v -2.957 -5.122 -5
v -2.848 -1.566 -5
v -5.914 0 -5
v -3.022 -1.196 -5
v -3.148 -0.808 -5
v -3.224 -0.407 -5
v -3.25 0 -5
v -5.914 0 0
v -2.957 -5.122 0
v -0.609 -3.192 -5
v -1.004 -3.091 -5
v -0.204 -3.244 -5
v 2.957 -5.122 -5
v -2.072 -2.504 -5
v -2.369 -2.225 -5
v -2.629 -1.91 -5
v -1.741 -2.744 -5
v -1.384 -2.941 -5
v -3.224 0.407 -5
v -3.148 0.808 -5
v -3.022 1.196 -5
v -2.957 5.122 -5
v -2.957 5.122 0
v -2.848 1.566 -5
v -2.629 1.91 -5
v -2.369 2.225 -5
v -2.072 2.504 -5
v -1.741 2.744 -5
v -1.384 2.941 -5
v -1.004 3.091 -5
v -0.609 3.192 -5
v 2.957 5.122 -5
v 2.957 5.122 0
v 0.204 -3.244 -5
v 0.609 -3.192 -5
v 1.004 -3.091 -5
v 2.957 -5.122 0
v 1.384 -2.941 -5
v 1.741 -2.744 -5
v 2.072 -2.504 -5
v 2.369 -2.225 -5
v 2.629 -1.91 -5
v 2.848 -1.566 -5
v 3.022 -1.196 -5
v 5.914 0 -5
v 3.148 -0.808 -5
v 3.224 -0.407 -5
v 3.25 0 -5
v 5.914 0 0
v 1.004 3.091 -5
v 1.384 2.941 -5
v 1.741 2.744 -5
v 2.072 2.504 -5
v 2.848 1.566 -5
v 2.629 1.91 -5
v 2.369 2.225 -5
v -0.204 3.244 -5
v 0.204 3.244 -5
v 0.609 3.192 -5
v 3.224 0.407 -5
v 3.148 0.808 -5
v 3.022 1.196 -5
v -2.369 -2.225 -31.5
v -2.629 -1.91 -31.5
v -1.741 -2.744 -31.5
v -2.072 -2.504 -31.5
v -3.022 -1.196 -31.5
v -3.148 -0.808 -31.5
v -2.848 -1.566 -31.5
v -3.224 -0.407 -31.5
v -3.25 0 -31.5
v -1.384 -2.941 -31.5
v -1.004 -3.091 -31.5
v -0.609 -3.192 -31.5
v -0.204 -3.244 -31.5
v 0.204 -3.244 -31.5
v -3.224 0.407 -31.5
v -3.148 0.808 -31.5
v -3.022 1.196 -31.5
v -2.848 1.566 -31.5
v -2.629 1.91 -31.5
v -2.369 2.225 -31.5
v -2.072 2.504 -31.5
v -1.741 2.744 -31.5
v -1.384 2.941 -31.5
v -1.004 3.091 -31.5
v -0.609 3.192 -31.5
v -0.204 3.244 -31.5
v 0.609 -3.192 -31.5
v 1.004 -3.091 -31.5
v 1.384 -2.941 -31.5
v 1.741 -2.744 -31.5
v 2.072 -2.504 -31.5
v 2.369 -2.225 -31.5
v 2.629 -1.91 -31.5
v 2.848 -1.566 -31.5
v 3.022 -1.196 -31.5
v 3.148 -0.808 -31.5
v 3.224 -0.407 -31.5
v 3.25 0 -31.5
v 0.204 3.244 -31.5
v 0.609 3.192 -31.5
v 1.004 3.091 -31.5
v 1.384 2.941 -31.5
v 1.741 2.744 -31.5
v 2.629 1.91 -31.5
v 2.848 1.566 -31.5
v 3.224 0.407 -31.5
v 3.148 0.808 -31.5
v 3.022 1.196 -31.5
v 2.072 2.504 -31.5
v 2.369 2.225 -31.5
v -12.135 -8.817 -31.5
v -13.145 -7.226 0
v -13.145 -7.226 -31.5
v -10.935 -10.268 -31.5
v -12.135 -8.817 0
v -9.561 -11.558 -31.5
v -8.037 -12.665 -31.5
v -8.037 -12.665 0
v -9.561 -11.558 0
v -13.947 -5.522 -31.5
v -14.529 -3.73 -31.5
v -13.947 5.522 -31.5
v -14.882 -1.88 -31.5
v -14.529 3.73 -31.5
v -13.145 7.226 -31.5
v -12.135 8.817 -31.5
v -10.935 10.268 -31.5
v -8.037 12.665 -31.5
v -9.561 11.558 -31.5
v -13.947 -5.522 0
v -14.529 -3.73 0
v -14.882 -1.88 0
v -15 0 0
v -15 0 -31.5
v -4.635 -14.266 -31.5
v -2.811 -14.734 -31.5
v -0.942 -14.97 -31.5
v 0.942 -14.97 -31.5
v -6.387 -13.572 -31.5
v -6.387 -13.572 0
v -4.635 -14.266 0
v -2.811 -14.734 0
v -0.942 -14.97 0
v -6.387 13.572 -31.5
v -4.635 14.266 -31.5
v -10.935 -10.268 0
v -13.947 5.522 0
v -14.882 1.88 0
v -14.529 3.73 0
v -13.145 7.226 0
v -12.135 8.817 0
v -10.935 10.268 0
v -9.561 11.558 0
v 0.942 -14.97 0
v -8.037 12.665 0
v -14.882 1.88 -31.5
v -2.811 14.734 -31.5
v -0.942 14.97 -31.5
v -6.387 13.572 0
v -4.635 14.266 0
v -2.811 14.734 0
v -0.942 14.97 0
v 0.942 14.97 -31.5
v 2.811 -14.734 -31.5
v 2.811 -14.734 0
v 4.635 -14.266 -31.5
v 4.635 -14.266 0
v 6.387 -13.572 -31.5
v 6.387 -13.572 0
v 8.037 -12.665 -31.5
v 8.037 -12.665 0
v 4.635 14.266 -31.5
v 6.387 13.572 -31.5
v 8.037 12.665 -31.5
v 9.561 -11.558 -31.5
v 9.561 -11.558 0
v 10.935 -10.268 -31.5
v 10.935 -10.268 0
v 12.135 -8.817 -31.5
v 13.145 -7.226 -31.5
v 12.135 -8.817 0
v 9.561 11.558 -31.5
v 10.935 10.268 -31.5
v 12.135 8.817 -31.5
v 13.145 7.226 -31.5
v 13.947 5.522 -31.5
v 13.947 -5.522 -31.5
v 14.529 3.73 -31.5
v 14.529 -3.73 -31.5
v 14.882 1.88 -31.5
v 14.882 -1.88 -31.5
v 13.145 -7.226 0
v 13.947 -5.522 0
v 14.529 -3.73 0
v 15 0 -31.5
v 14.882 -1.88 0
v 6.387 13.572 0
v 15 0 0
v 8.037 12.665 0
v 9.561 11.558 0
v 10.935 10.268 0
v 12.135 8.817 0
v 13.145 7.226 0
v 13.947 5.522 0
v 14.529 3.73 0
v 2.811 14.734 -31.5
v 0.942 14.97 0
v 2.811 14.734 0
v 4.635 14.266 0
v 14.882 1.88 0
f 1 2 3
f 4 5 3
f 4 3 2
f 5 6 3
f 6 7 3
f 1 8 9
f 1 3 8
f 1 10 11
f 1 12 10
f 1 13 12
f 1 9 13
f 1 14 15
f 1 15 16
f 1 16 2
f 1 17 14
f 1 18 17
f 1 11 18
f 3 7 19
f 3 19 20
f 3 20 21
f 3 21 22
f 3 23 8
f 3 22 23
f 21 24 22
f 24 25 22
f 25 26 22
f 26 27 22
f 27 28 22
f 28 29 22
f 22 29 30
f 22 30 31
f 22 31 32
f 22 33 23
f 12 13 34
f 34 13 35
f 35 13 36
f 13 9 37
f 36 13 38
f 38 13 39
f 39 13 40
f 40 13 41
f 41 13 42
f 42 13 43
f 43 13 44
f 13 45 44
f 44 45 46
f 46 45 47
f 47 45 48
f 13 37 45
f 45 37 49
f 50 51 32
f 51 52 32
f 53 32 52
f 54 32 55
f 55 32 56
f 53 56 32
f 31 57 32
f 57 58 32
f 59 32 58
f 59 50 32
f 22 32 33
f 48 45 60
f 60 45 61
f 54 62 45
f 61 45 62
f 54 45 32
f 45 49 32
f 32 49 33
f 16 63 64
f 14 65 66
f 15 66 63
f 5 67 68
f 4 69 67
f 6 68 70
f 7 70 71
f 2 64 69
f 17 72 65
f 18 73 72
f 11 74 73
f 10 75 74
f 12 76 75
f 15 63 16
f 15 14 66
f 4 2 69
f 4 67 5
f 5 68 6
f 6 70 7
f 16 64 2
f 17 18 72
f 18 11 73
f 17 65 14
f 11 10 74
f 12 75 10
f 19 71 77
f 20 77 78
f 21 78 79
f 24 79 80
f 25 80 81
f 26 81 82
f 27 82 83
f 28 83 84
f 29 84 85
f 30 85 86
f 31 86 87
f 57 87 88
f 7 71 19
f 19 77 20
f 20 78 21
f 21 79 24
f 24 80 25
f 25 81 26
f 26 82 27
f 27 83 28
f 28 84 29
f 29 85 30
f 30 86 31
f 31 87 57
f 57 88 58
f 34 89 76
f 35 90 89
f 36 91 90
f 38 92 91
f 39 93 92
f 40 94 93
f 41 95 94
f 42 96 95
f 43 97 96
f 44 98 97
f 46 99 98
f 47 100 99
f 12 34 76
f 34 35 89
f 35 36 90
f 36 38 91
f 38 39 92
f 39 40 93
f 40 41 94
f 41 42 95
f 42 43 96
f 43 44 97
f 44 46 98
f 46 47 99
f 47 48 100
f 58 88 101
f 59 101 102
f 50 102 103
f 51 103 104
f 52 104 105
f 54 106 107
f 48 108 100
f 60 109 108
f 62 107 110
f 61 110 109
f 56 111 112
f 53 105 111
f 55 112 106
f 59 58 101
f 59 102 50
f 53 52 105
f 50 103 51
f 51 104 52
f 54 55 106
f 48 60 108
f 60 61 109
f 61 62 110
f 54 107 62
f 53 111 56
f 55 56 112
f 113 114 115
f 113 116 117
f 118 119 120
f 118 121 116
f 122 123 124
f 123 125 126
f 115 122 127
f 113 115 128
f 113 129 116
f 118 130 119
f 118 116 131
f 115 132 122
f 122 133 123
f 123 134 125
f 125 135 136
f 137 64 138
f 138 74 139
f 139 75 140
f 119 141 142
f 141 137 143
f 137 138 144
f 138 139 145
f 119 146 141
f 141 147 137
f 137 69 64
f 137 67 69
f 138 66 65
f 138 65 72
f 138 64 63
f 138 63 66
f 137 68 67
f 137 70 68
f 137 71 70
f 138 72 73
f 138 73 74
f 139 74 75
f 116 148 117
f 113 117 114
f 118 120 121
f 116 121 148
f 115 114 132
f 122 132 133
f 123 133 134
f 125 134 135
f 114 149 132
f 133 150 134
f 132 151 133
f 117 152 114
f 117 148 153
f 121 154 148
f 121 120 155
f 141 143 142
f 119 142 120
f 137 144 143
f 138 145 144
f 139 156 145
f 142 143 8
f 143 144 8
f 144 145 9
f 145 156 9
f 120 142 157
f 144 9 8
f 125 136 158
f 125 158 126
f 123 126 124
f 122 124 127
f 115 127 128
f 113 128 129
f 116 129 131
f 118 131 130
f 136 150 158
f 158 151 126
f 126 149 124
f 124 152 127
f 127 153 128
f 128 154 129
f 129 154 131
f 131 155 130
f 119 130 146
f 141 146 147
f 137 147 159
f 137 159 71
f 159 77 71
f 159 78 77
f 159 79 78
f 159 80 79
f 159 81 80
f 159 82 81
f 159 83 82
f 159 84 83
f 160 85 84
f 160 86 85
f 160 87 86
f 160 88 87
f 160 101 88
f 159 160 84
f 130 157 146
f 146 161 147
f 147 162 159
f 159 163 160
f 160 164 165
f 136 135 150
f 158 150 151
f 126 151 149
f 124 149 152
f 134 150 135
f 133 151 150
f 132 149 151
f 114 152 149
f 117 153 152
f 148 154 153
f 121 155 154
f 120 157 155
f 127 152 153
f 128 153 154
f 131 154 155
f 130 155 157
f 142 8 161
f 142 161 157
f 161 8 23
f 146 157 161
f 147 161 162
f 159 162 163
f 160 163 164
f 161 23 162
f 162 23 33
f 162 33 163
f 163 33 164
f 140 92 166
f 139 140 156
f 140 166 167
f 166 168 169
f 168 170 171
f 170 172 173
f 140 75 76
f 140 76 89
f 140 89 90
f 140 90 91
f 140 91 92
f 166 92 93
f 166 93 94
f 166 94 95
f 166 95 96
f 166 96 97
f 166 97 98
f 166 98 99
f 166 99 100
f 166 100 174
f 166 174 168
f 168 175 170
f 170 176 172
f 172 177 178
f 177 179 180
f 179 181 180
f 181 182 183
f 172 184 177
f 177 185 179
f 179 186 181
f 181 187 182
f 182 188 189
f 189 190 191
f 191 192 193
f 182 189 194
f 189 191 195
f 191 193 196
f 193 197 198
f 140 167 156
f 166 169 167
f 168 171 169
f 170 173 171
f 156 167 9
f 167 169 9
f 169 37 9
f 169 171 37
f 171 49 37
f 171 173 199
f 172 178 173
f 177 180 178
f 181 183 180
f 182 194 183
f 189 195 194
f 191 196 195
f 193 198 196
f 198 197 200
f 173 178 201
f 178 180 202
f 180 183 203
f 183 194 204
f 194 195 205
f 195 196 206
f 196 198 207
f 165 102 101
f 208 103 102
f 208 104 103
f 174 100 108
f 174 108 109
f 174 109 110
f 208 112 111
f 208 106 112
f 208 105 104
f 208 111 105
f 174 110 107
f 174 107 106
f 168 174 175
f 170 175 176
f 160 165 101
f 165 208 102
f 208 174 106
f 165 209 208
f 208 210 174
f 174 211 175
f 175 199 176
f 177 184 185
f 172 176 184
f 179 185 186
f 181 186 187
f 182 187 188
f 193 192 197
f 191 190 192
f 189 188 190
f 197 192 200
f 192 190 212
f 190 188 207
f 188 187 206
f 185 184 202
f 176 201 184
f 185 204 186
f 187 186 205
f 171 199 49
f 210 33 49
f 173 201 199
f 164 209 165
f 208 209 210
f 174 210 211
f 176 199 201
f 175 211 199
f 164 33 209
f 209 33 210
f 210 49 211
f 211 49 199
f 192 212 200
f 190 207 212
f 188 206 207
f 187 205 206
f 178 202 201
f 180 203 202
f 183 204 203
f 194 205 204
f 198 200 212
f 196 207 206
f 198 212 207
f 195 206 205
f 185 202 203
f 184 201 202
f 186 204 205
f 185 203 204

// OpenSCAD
$fn = 50;

difference() {
	union() {
		translate(v = [0, 0, -31.5]) {
			cylinder(h = 31.5, r = 15.0);
		}
	}
	union() {
		translate(v = [0, 0, 0]) {
			rotate(a = [0, 0, 0]) {
				difference() {
					union() {
						translate(v = [0, 0, -5]) {
							linear_extrude(height = 5) {
								polygon(points = [[5.914249999999999, 0.0], [2.957125, 5.1218907443321156], [-2.9571249999999982, 5.1218907443321156], [-5.914249999999999, 7.242867331857232e-16], [-2.9571250000000022, -5.121890744332115], [2.9571249999999956, -5.121890744332118]]);
							}
						}
					}
					union();
				}
			}
		}
		#translate(v = [0, 0, -100.0]) {
			cylinder(h = 200, r = 3.25);
		}
	}
}
